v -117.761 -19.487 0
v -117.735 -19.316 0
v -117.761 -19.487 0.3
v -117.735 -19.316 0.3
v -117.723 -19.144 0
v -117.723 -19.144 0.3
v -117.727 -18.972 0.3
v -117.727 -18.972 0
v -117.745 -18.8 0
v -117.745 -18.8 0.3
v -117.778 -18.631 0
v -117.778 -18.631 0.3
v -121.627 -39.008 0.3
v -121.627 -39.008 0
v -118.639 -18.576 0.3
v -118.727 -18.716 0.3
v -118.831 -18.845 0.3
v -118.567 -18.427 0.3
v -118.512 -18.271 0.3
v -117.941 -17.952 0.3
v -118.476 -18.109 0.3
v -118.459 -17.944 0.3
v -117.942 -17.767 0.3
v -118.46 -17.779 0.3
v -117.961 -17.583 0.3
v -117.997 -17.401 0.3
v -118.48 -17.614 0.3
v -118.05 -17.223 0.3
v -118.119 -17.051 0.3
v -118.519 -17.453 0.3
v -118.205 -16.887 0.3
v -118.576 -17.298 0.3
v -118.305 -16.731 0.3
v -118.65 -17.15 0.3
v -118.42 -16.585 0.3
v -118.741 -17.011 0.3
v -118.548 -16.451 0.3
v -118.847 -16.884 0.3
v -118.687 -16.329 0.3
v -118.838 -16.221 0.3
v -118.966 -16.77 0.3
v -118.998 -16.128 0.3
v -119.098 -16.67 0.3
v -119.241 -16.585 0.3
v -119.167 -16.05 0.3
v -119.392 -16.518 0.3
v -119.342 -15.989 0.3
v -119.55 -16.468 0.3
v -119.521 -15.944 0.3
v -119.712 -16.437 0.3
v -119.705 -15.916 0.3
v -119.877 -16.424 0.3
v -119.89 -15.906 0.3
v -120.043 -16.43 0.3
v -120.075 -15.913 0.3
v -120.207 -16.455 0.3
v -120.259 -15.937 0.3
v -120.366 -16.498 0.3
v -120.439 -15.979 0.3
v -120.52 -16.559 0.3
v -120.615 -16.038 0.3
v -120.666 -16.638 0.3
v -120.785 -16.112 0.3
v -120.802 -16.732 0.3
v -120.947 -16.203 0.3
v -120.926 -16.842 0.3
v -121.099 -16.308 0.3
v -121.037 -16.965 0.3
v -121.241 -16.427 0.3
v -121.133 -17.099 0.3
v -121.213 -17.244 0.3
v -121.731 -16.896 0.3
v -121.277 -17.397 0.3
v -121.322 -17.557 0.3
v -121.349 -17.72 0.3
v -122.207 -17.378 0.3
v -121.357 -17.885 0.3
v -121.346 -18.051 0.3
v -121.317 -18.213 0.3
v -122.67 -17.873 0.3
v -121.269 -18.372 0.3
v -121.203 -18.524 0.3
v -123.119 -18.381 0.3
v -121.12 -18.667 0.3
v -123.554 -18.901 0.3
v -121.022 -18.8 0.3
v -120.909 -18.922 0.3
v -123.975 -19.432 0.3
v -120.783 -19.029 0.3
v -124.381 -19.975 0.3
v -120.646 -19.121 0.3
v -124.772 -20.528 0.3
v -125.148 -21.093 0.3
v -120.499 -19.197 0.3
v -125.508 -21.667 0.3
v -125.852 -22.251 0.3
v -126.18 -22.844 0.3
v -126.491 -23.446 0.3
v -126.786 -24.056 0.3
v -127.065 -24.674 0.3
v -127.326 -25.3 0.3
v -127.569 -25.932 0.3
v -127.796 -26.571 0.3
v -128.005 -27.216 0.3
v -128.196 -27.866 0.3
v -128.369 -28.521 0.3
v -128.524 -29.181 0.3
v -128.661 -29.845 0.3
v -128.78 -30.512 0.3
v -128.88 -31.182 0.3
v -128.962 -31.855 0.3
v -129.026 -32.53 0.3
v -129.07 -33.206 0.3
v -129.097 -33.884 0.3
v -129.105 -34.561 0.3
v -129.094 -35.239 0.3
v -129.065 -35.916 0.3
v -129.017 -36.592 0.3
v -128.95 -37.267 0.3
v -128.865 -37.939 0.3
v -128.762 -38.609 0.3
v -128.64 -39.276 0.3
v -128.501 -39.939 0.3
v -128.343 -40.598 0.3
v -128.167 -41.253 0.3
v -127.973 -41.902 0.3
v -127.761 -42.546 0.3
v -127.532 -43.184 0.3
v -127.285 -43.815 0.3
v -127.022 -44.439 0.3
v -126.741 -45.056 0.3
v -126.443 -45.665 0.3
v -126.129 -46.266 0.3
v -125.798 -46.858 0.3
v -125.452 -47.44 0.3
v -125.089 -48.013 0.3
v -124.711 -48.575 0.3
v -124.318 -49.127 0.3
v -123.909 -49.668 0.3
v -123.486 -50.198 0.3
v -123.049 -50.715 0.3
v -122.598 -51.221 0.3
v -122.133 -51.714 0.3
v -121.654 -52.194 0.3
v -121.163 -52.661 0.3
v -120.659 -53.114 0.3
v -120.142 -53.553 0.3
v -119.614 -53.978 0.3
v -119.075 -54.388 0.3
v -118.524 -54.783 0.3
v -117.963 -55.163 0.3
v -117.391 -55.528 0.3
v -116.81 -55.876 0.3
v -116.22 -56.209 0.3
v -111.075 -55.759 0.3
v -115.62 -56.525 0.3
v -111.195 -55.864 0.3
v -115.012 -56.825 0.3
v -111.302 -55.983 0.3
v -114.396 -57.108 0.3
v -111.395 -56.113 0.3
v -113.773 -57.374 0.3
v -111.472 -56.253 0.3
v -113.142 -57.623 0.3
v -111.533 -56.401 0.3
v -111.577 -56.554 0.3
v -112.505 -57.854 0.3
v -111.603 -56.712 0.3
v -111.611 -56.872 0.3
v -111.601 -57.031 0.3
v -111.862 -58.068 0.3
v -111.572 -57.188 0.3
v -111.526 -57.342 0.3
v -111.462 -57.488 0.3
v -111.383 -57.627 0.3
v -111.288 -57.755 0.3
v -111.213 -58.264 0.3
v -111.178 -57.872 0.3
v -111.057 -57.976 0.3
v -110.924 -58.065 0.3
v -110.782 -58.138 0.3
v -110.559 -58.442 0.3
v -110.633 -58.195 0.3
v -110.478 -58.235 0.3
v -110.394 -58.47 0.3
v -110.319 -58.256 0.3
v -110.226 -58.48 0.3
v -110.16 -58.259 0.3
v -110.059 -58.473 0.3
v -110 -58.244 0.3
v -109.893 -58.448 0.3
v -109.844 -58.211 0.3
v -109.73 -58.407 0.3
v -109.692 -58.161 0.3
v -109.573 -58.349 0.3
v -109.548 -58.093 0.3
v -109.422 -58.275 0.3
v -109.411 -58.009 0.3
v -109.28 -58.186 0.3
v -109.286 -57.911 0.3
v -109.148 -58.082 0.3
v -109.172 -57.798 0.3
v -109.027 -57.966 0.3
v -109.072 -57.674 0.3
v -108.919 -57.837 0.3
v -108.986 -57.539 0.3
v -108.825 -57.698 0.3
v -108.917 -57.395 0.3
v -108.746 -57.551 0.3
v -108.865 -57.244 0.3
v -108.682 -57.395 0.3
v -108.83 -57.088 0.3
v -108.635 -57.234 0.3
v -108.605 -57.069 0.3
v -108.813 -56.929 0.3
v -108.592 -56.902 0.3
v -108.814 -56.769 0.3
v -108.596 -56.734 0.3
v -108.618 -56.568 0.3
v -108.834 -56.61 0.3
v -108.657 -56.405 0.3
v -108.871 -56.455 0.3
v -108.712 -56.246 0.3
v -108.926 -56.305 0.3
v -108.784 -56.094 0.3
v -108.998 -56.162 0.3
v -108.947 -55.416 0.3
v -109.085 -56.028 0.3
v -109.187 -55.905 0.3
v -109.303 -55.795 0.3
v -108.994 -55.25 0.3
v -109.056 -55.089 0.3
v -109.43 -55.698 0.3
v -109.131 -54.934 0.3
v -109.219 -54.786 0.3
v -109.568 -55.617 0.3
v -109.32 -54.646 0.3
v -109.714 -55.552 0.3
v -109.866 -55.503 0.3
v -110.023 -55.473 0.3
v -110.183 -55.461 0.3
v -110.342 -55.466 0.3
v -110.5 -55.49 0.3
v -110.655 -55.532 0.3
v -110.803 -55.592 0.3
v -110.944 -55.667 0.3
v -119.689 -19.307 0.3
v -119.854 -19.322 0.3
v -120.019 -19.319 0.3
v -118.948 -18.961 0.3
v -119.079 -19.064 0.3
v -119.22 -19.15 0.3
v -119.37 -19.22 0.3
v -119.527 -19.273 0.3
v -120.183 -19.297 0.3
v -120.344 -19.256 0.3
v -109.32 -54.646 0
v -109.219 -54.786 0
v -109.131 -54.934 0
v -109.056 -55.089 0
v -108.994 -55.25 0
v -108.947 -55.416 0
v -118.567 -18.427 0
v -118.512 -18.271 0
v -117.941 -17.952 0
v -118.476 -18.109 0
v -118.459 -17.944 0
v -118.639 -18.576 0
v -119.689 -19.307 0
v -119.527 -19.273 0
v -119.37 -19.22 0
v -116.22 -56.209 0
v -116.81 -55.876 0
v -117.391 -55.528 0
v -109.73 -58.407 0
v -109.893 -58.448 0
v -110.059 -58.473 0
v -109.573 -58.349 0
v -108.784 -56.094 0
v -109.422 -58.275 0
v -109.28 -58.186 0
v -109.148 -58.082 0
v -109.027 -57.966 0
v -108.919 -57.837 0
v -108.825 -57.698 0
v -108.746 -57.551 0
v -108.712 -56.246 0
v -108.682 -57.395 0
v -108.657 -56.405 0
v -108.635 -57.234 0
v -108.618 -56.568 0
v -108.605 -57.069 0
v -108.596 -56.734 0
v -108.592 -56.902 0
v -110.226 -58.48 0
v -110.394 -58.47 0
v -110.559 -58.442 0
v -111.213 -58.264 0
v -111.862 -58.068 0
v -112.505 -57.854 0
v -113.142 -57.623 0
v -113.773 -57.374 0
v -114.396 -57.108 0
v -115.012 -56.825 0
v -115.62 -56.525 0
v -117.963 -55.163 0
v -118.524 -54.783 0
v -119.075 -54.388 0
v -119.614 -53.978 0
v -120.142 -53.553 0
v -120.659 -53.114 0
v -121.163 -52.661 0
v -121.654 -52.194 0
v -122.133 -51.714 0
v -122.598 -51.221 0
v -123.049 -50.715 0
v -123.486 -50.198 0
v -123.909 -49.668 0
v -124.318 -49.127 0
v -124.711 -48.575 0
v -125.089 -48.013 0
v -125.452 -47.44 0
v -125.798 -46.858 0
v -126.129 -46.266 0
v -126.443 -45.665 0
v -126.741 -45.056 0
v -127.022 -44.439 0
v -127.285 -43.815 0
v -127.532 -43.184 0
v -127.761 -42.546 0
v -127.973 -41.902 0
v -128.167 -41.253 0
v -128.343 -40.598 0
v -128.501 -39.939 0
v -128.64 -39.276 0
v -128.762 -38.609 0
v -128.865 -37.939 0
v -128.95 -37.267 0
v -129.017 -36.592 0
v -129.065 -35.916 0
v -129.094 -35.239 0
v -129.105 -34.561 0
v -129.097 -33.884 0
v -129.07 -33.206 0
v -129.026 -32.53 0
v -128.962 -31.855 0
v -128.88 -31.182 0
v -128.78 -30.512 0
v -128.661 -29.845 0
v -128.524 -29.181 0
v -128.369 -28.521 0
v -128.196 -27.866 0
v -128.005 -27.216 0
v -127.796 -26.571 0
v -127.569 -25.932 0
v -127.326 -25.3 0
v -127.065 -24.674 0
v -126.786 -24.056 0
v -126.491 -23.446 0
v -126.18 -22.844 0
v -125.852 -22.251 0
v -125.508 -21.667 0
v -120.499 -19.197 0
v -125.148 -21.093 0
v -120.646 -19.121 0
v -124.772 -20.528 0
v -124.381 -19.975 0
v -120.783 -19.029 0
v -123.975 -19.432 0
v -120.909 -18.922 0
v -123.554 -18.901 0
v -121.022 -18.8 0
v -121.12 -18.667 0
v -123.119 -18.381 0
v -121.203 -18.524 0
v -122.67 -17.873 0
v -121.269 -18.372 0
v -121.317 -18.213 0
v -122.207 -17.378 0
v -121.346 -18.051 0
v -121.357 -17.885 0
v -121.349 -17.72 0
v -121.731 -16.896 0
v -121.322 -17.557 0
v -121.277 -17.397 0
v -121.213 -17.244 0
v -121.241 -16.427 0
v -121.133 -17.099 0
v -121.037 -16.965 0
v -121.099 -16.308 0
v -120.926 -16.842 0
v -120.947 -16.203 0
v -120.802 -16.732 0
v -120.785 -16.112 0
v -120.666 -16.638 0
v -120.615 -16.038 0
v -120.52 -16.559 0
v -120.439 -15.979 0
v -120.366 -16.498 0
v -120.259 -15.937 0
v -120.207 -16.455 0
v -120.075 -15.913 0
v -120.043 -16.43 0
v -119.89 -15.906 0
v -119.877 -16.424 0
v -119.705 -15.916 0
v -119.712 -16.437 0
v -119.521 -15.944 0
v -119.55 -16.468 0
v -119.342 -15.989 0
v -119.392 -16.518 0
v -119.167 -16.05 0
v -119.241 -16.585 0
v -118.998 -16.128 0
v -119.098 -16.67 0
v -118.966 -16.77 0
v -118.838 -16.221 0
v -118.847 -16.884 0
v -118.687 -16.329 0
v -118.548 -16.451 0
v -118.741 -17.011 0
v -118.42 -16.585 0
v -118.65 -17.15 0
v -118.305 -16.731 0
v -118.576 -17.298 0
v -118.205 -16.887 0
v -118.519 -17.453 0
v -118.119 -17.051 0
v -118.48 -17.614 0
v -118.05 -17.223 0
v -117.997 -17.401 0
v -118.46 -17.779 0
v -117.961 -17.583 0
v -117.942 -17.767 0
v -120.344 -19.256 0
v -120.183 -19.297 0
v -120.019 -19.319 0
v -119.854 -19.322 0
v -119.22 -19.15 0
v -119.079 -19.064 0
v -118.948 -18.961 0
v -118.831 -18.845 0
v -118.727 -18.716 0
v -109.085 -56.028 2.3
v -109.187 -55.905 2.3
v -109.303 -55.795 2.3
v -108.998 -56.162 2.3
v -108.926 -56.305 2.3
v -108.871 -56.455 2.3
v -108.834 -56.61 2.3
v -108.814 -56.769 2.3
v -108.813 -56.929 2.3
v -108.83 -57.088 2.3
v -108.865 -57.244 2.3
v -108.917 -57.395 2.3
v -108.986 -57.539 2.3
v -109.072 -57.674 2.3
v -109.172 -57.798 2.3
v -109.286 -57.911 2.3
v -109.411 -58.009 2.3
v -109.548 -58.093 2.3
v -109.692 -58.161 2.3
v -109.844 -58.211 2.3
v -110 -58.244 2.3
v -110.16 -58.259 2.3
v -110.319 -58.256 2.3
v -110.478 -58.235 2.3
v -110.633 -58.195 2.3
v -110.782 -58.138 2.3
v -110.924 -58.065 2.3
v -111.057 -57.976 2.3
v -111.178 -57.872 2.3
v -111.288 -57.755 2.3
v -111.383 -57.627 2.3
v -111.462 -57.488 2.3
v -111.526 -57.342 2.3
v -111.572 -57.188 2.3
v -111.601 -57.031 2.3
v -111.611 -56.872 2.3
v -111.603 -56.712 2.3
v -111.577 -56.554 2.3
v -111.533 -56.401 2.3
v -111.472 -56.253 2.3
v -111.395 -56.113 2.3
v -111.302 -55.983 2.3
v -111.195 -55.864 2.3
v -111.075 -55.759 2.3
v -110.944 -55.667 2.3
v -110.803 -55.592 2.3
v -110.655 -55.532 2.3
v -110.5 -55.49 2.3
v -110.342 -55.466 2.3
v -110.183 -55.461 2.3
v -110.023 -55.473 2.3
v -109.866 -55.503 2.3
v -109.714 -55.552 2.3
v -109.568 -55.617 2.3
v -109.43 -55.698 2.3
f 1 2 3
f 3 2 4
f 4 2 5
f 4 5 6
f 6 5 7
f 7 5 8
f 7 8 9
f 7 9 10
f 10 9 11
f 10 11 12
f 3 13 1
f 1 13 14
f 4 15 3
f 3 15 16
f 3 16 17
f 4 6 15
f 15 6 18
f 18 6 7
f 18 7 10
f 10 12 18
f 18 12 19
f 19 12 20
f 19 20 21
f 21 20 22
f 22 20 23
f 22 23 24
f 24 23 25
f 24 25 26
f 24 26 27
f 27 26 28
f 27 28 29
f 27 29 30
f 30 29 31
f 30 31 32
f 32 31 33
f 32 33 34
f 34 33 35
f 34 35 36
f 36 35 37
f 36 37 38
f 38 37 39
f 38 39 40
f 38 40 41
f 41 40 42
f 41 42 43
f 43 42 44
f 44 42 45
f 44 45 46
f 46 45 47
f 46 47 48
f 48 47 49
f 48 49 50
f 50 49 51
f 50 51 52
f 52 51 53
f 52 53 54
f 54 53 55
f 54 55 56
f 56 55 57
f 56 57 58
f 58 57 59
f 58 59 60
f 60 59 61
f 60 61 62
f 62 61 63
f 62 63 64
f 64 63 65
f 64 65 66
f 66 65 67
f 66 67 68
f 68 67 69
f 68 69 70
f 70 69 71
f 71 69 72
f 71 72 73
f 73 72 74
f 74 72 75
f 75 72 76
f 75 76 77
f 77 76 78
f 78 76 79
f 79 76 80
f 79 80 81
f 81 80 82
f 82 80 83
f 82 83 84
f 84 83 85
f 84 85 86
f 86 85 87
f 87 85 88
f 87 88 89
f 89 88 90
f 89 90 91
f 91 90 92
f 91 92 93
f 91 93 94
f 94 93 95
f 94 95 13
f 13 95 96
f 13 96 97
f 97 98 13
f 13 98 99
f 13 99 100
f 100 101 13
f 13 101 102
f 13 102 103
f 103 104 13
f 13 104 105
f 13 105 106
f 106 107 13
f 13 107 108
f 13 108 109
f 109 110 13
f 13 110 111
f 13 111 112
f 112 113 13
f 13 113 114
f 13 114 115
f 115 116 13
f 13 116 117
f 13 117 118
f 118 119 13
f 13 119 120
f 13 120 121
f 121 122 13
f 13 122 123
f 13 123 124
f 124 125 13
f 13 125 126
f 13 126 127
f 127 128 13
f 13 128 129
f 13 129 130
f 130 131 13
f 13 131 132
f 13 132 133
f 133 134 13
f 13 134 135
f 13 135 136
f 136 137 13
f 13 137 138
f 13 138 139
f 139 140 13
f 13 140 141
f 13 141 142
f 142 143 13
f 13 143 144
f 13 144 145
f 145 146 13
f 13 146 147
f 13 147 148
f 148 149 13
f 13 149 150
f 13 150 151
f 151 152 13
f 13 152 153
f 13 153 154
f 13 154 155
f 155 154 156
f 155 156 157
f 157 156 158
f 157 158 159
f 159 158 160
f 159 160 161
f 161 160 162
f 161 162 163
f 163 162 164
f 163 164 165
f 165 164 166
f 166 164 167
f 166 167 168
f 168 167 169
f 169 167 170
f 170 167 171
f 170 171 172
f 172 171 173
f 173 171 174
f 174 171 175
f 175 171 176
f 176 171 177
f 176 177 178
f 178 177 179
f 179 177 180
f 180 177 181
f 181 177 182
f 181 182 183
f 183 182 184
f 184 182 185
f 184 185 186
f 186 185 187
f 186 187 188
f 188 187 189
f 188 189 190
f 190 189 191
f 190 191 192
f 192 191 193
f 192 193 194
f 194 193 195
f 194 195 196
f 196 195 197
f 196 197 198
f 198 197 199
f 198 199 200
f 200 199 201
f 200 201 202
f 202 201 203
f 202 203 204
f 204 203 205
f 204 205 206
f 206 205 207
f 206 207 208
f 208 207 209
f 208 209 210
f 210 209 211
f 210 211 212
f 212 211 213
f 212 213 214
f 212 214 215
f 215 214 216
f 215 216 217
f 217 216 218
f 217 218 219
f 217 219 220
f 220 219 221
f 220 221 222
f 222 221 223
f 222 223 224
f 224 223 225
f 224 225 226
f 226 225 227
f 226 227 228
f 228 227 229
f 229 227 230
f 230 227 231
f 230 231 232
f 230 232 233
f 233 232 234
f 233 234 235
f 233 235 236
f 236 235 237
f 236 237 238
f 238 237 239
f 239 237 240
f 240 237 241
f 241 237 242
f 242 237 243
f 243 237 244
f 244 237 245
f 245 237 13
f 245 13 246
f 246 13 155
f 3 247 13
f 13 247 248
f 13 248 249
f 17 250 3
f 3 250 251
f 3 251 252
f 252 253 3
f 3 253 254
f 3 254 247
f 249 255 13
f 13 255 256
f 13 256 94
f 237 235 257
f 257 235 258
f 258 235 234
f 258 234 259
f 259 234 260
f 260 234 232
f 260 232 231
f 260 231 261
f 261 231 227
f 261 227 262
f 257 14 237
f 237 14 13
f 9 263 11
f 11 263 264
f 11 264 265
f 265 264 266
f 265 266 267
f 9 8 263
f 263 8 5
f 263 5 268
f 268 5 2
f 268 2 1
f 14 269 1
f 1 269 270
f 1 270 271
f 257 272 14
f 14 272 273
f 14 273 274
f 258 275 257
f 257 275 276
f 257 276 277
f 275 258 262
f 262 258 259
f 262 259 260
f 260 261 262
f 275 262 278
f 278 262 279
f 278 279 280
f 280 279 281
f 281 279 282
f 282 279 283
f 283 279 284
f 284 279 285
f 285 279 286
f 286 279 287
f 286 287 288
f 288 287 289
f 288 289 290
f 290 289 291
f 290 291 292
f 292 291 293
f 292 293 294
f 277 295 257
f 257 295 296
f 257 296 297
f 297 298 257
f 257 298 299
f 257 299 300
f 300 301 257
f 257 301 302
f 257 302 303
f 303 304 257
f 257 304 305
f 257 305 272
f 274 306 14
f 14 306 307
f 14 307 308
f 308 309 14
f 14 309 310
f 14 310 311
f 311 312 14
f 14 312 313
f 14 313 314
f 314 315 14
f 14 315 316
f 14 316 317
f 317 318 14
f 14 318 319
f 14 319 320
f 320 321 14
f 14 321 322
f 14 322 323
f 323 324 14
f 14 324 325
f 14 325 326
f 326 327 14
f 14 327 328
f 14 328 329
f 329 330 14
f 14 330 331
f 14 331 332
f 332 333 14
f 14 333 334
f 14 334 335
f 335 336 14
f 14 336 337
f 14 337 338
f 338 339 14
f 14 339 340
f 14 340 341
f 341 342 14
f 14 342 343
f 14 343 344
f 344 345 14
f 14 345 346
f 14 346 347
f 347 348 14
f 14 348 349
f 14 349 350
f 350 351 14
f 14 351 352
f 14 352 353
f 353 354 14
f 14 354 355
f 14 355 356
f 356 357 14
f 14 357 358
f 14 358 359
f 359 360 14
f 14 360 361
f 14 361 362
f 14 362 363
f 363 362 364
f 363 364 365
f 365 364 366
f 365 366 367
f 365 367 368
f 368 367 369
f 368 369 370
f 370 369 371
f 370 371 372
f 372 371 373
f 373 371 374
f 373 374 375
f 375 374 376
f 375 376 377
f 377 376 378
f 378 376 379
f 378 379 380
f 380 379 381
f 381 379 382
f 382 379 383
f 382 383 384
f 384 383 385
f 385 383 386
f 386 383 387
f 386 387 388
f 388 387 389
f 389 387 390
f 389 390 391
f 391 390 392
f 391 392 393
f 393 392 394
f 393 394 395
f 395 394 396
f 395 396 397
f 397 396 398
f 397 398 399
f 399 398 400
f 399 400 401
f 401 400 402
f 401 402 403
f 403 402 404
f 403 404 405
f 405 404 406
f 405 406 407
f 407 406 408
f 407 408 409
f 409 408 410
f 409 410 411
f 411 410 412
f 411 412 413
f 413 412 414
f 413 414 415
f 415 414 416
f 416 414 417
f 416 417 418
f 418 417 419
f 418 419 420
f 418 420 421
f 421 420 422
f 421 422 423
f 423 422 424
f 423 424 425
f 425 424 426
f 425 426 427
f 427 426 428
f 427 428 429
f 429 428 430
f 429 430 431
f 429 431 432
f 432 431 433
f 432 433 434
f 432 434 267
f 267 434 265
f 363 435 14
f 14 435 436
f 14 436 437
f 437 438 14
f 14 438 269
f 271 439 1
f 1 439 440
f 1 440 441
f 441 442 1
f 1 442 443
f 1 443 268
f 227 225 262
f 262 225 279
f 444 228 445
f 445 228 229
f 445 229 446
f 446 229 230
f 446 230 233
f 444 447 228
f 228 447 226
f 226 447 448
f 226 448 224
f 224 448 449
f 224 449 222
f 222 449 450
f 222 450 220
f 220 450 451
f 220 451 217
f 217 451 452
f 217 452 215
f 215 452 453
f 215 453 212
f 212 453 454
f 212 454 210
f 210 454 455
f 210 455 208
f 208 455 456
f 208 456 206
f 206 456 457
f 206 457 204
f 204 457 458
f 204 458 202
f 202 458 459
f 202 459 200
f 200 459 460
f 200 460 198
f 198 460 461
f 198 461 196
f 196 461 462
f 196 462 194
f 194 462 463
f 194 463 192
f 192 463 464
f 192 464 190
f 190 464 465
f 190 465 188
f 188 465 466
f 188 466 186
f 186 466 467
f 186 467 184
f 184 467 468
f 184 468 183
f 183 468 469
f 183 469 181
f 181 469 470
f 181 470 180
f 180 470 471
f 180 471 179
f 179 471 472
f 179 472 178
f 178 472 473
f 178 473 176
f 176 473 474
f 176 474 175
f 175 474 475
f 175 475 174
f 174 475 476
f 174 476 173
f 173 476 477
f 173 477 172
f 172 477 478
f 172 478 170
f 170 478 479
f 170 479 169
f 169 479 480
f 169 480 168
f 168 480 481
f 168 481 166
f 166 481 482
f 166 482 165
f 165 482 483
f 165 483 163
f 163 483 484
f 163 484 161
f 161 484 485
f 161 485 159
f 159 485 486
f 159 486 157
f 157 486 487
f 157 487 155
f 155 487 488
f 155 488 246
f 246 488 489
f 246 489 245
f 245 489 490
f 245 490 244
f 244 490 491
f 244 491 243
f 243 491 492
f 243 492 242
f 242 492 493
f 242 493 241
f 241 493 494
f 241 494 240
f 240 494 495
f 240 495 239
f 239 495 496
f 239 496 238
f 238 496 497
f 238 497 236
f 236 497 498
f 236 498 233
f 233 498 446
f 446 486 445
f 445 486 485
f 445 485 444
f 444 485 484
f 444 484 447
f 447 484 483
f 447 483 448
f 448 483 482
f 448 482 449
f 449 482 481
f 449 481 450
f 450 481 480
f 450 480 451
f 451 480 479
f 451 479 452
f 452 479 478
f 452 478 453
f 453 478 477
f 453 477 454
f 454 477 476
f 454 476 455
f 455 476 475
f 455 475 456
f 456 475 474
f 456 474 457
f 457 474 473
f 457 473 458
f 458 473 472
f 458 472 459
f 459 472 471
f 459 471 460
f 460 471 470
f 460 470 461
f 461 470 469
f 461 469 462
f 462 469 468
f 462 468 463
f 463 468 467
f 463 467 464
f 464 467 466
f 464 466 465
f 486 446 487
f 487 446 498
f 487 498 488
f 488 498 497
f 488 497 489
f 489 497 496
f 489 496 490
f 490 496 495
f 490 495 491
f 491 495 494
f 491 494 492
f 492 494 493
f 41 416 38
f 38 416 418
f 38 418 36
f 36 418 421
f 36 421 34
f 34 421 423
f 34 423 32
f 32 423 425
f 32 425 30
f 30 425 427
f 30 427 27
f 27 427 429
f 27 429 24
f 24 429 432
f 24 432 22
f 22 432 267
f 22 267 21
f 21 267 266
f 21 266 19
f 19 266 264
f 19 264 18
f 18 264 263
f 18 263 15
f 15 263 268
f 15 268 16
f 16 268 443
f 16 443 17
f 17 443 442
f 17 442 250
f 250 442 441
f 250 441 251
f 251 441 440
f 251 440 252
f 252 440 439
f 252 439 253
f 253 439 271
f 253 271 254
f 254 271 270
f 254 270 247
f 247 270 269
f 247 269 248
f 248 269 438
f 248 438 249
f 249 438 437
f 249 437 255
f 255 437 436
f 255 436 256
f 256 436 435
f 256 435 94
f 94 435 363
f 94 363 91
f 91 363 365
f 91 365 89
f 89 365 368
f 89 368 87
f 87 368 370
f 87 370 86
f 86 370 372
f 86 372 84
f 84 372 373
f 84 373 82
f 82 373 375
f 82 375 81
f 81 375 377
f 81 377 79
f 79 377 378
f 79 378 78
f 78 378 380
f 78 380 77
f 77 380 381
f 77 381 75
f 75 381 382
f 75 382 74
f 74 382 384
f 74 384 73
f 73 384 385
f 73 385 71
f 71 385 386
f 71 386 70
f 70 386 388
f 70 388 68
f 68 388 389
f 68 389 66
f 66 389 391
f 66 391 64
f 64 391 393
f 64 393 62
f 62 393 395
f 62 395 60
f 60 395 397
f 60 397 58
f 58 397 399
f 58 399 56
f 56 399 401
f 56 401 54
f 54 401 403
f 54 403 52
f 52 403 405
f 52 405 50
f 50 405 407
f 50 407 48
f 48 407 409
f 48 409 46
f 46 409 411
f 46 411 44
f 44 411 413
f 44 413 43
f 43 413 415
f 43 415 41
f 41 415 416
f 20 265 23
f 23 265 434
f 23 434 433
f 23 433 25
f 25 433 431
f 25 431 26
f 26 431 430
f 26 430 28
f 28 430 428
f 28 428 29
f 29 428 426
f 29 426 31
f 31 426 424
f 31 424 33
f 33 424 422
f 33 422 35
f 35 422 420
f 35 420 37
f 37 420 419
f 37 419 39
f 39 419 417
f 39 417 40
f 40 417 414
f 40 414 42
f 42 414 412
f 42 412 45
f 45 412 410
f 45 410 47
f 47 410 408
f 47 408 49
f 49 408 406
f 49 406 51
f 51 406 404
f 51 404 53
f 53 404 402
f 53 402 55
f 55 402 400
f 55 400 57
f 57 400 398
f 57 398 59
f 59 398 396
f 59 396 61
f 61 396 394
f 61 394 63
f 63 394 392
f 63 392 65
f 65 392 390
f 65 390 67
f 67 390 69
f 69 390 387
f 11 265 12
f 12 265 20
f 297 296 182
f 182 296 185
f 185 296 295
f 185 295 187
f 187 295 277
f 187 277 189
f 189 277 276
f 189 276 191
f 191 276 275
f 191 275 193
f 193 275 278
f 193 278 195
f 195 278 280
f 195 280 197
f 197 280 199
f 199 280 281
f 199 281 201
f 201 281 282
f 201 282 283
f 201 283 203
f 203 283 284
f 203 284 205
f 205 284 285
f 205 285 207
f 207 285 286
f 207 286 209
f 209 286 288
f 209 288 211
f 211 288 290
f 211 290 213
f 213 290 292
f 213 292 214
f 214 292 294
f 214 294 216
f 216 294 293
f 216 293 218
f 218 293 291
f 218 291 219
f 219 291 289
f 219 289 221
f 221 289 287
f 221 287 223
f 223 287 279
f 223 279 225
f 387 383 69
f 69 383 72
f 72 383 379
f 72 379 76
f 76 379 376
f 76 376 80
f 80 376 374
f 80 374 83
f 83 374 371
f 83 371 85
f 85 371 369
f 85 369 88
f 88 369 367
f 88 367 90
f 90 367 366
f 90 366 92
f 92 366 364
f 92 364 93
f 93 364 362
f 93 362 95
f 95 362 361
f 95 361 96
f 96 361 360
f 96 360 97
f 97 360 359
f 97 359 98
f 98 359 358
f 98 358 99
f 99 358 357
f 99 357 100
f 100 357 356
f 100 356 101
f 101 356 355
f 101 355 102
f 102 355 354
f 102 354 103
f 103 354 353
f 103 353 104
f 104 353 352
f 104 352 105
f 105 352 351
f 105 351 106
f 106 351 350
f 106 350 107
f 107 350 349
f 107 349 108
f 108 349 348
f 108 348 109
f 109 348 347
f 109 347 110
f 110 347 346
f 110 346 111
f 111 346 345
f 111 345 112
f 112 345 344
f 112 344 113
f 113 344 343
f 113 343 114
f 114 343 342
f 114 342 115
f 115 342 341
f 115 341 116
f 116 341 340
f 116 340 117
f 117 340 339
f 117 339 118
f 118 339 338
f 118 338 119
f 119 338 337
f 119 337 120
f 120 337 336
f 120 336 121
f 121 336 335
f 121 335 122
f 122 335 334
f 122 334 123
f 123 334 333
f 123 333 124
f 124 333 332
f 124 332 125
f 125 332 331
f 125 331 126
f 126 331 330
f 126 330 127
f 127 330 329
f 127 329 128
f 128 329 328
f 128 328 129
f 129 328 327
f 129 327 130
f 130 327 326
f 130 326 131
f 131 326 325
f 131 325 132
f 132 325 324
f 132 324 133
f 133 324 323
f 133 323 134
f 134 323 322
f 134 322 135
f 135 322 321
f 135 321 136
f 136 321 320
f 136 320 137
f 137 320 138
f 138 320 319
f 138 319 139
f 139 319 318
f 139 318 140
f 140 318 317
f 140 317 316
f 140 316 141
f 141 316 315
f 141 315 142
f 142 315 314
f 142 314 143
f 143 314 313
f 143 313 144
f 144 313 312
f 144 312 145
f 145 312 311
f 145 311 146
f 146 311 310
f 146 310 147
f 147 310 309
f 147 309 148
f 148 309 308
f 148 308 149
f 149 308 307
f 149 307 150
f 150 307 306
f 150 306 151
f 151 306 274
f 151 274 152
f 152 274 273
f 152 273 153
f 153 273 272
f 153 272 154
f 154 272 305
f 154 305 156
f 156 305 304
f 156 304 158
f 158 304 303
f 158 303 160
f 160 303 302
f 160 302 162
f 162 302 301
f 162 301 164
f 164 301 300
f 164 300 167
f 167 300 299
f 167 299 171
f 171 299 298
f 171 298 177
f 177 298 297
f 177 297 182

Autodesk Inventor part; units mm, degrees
ref_plane "YZ Plane" through (0, 0, 0) normal (1, 0, 0) x (0, 1, 0)
ref_plane "XZ Plane" through (0, 0, 0) normal (0, 1, 0) x (-1, 0, 0)
ref_plane "Work Plane1" through (-172.2086, 28.8158, 0) normal (0, 0, 1) x (0.7312, 0.6822, 0)
sketch "Sketch1" plane through (-172.2086, 28.8158, 0) normal (0, 0, 1) x (0.7312, 0.6822, 0)
  circle A0 centre (-15.7879, -97.63) radius 1.25 construction
  circle A1 centre (-11.395, -78.3833) radius 1.25 construction
  circle A2 centre (6.3917, -69.8177) radius 1.25 construction
  arc A3 (12.3361, -69.0473) -> (8.4064, -68.3915) centre (10.3419, -68.895) ccw construction
  line L0 (8.4064, -68.3915) -> (8.3917, -68.5677) construction
  arc A4 (8.3917, -68.5677) -> (8.389, -68.4638) centre (6.3917, -68.5677) ccw construction
  arc A5 (8.389, -68.4638) -> (8.3692, -68.5658) centre (10.3419, -68.895) ccw construction
  line L1 (8.3692, -68.5658) -> (8.3837, -68.3896) construction
  arc A6 (8.3837, -68.3896) -> (4.3996, -68.3896) centre (6.3917, -68.5677) ccw construction
  line L2 (4.3996, -68.3896) -> (4.4141, -68.5658) construction
  arc A7 (4.4141, -68.5658) -> (4.3944, -68.4638) centre (2.4414, -68.895) ccw construction
  arc A8 (4.3944, -68.4638) -> (4.3917, -68.5677) centre (6.3917, -68.5677) ccw construction
  line L3 (4.3917, -68.5677) -> (4.377, -68.3915) construction
  arc A9 (4.377, -68.3915) -> (0.4472, -69.0473) centre (2.4414, -68.895) ccw construction
  line L4 (0.4472, -69.0473) -> (0.4905, -69.2186) construction
  arc A10 (0.4905, -69.2186) -> (0.4543, -69.1213) centre (-1.4011, -69.868) ccw construction
  arc A11 (0.4543, -69.1213) -> (0.4687, -69.2242) centre (2.4414, -68.895) ccw construction
  line L5 (0.4687, -69.2242) -> (0.4252, -69.0528) construction
  arc A12 (0.4252, -69.0528) -> (-3.343, -70.3465) centre (-1.4011, -69.868) ccw construction
  line L6 (-3.343, -70.3465) -> (-3.2721, -70.5084) construction
  arc A13 (-3.2721, -70.5084) -> (-3.3239, -70.4183) centre (-5.0311, -71.4603) ccw construction
  arc A14 (-3.3239, -70.4183) -> (-3.2927, -70.5174) centre (-1.4011, -69.868) ccw construction
  line L7 (-3.2927, -70.5174) -> (-3.3638, -70.3556) construction
  arc A15 (-3.3638, -70.3556) -> (-6.8678, -72.2518) centre (-5.0311, -71.4603) ccw construction
  line L8 (-6.8678, -72.2518) -> (-6.7711, -72.3999) construction
  arc A16 (-6.7711, -72.3999) -> (-6.8371, -72.3196) centre (-8.3494, -73.6283) ccw construction
  arc A17 (-6.8371, -72.3196) -> (-6.79, -72.4122) centre (-5.0311, -71.4603) ccw construction
  line L9 (-6.79, -72.4122) -> (-6.8868, -72.2642) construction
  arc A18 (-6.8868, -72.2642) -> (-10.0308, -74.7113) centre (-8.3494, -73.6283) ccw construction
  line L10 (-10.0308, -74.7113) -> (-9.9111, -74.8414) construction
  arc A19 (-9.9111, -74.8414) -> (-9.9894, -74.7731) centre (-11.2657, -76.3129) ccw construction
  arc A20 (-9.9894, -74.7731) -> (-9.9277, -74.8567) centre (-8.3494, -73.6283) ccw construction
  line L11 (-9.9277, -74.8567) -> (-10.0475, -74.7267) construction
  arc A21 (-10.0475, -74.7267) -> (-12.7459, -77.6579) centre (-11.2657, -76.3129) ccw construction
  line L12 (-12.7459, -77.6579) -> (-12.6064, -77.7666) construction
  arc A22 (-12.6064, -77.7666) -> (-12.6948, -77.712) centre (-13.7003, -79.4409) ccw construction
  arc A23 (-12.6948, -77.712) -> (-12.6203, -77.7843) centre (-11.2657, -76.3129) ccw construction
  line L13 (-12.6203, -77.7843) -> (-12.7598, -77.6758) construction
  arc A24 (-12.7598, -77.6758) -> (-14.9389, -81.0112) centre (-13.7003, -79.4409) ccw construction
  line L14 (-14.9389, -81.0112) -> (-14.7835, -81.0954) construction
  arc A25 (-14.7835, -81.0954) -> (-14.8797, -81.0562) centre (-15.5869, -82.927) ccw construction
  arc A26 (-14.8797, -81.0562) -> (-14.7942, -81.1152) centre (-13.7003, -79.4409) ccw construction
  line L15 (-14.7942, -81.1152) -> (-14.9497, -81.0312) construction
  arc A27 (-14.9497, -81.0312) -> (-16.5501, -84.6797) centre (-15.5869, -82.927) ccw construction
  line L16 (-16.5501, -84.6797) -> (-16.383, -84.7372) construction
  arc A28 (-16.383, -84.7372) -> (-16.4843, -84.7143) centre (-16.8739, -86.676) ccw construction
  arc A29 (-16.4843, -84.7143) -> (-16.3903, -84.7585) centre (-15.5869, -82.927) ccw construction
  line L17 (-16.3903, -84.7585) -> (-16.5575, -84.7012) construction
  arc A30 (-16.5575, -84.7012) -> (-17.5355, -88.5634) centre (-16.8739, -86.676) ccw construction
  line L18 (-17.5355, -88.5634) -> (-17.3612, -88.5926) construction
  arc A31 (-17.3612, -88.5926) -> (-17.4649, -88.5867) centre (-17.5264, -90.5857) ccw construction
  arc A32 (-17.4649, -88.5867) -> (-17.3649, -88.6148) centre (-16.8739, -86.676) ccw construction
  line L19 (-17.3649, -88.6148) -> (-17.5393, -88.5858) construction
  arc A33 (-17.5393, -88.5858) -> (-17.8683, -92.5563) centre (-17.5264, -90.5857) ccw construction
  line L20 (-17.8683, -92.5563) -> (-17.6915, -92.5564) construction
  arc A34 (-17.6915, -92.5564) -> (-17.7948, -92.5677) centre (-17.5264, -94.5496) ccw construction
  arc A35 (-17.7948, -92.5677) -> (-17.6915, -92.5789) centre (-17.5264, -90.5857) ccw construction
  line L21 (-17.6915, -92.5789) -> (-17.8683, -92.579) construction
  arc A36 (-17.8683, -92.579) -> (-17.5393, -96.5495) centre (-17.5264, -94.5496) ccw construction
  line L22 (-17.5393, -96.5495) -> (-17.3649, -96.5205) construction
  arc A37 (-17.3649, -96.5205) -> (-17.4649, -96.5486) centre (-16.8739, -98.4593) ccw construction
  arc A38 (-17.4649, -96.5486) -> (-17.3612, -96.5427) centre (-17.5264, -94.5496) ccw construction
  line L23 (-17.3612, -96.5427) -> (-17.5355, -96.5719) construction
  arc A39 (-17.5355, -96.5719) -> (-16.5575, -100.4341) centre (-16.8739, -98.4593) ccw construction
  line L24 (-16.5575, -100.4341) -> (-16.3903, -100.3768) construction
  arc A40 (-16.3903, -100.3768) -> (-16.4843, -100.421) centre (-15.5869, -102.2083) ccw construction
  arc A41 (-16.4843, -100.421) -> (-16.383, -100.3981) centre (-16.8739, -98.4593) ccw construction
  line L25 (-16.383, -100.3981) -> (-16.5501, -100.4556) construction
  arc A42 (-16.5501, -100.4556) -> (-14.9497, -104.1041) centre (-15.5869, -102.2083) ccw construction
  line L26 (-14.9497, -104.1041) -> (-14.7942, -104.0201) construction
  arc A43 (-14.7942, -104.0201) -> (-14.8797, -104.0791) centre (-13.7003, -105.6944) ccw construction
  arc A44 (-14.8797, -104.0791) -> (-14.7835, -104.0399) centre (-15.5869, -102.2083) ccw construction
  line L27 (-14.7835, -104.0399) -> (-14.9389, -104.1241) construction
  arc A45 (-14.9389, -104.1241) -> (-12.7598, -107.4595) centre (-13.7003, -105.6944) ccw construction
  line L28 (-12.7598, -107.4595) -> (-12.6203, -107.351) construction
  arc A46 (-12.6203, -107.351) -> (-12.6948, -107.4233) centre (-11.2657, -108.8224) ccw construction
  arc A47 (-12.6948, -107.4233) -> (-12.6064, -107.3687) centre (-13.7003, -105.6944) ccw construction
  line L29 (-12.6064, -107.3687) -> (-12.7459, -107.4774) construction
  arc A48 (-12.7459, -107.4774) -> (-10.0475, -110.4086) centre (-11.2657, -108.8224) ccw construction
  line L30 (-10.0475, -110.4086) -> (-9.9277, -110.2786) construction
  arc A49 (-9.9277, -110.2786) -> (-9.9894, -110.3622) centre (-8.3494, -111.507) ccw construction
  arc A50 (-9.9894, -110.3622) -> (-9.9111, -110.2939) centre (-11.2657, -108.8224) ccw construction
  line L31 (-9.9111, -110.2939) -> (-10.0308, -110.424) construction
  arc A51 (-10.0308, -110.424) -> (-6.8868, -112.8711) centre (-8.3494, -111.507) ccw construction
  line L32 (-6.8868, -112.8711) -> (-6.79, -112.7231) construction
  arc A52 (-6.79, -112.7231) -> (-6.8371, -112.8157) centre (-5.0311, -113.675) ccw construction
  arc A53 (-6.8371, -112.8157) -> (-6.7711, -112.7355) centre (-8.3494, -111.507) ccw construction
  line L33 (-6.7711, -112.7355) -> (-6.8678, -112.8835) construction
  arc A54 (-6.8678, -112.8835) -> (-3.3638, -114.7797) centre (-5.0311, -113.675) ccw construction
  line L34 (-3.3638, -114.7797) -> (-3.2927, -114.6179) construction
  arc A55 (-3.2927, -114.6179) -> (-3.3239, -114.717) centre (-1.4011, -115.2673) ccw construction
  arc A56 (-3.3239, -114.717) -> (-3.2721, -114.6269) centre (-5.0311, -113.675) ccw construction
  line L35 (-3.2721, -114.6269) -> (-3.343, -114.7888) construction
  arc A57 (-3.343, -114.7888) -> (0.4252, -116.0825) centre (-1.4011, -115.2673) ccw construction
  line L36 (0.4252, -116.0825) -> (0.4687, -115.9111) construction
  arc A58 (0.4687, -115.9111) -> (0.4543, -116.014) centre (2.4414, -116.2403) ccw construction
  arc A59 (0.4543, -116.014) -> (0.4905, -115.9167) centre (-1.4011, -115.2673) ccw construction
  line L37 (0.4905, -115.9167) -> (0.4472, -116.088) construction
  arc A60 (0.4472, -116.088) -> (4.377, -116.7438) centre (2.4414, -116.2403) ccw construction
  line L38 (4.377, -116.7438) -> (4.3917, -116.5677) construction
  arc A61 (4.3917, -116.5677) -> (4.3944, -116.6715) centre (6.3917, -116.5677) ccw construction
  arc A62 (4.3944, -116.6715) -> (4.4141, -116.5695) centre (2.4414, -116.2403) ccw construction
  line L39 (4.4141, -116.5695) -> (4.3996, -116.7457) construction
  arc A63 (4.3996, -116.7457) -> (8.3837, -116.7457) centre (6.3917, -116.5677) ccw construction
  line L40 (8.3837, -116.7457) -> (8.3692, -116.5695) construction
  arc A64 (8.3692, -116.5695) -> (8.389, -116.6715) centre (10.3419, -116.2403) ccw construction
  arc A65 (8.389, -116.6715) -> (8.3917, -116.5677) centre (6.3917, -116.5677) ccw construction
  line L41 (8.3917, -116.5677) -> (8.4064, -116.7438) construction
  arc A66 (8.4064, -116.7438) -> (12.3361, -116.088) centre (10.3419, -116.2403) ccw construction
  line L42 (12.3361, -116.088) -> (12.2928, -115.9167) construction
  arc A67 (12.2928, -115.9167) -> (12.3291, -116.014) centre (14.1845, -115.2673) ccw construction
  arc A68 (12.3291, -116.014) -> (12.3147, -115.9111) centre (10.3419, -116.2403) ccw construction
  line L43 (12.3147, -115.9111) -> (12.3581, -116.0825) construction
  arc A69 (12.3581, -116.0825) -> (16.1264, -114.7888) centre (14.1845, -115.2673) ccw construction
  line L44 (16.1264, -114.7888) -> (16.0555, -114.6269) construction
  arc A70 (16.0555, -114.6269) -> (16.1073, -114.717) centre (17.8144, -113.675) ccw construction
  arc A71 (16.1073, -114.717) -> (16.0761, -114.6179) centre (14.1845, -115.2673) ccw construction
  line L45 (16.0761, -114.6179) -> (16.1472, -114.7797) construction
  arc A72 (16.1472, -114.7797) -> (19.6511, -112.8835) centre (17.8144, -113.675) ccw construction
  line L46 (19.6511, -112.8835) -> (19.5545, -112.7355) construction
  arc A73 (19.5545, -112.7355) -> (19.6204, -112.8157) centre (21.1328, -111.507) ccw construction
  arc A74 (19.6204, -112.8157) -> (19.5734, -112.7231) centre (17.8144, -113.675) ccw construction
  line L47 (19.5734, -112.7231) -> (19.6701, -112.8711) construction
  arc A75 (19.6701, -112.8711) -> (22.8141, -110.424) centre (21.1328, -111.507) ccw construction
  line L48 (22.8141, -110.424) -> (22.6945, -110.2939) construction
  arc A76 (22.6945, -110.2939) -> (22.7727, -110.3622) centre (24.049, -108.8224) ccw construction
  arc A77 (22.7727, -110.3622) -> (22.7111, -110.2786) centre (21.1328, -111.507) ccw construction
  line L49 (22.7111, -110.2786) -> (22.8308, -110.4086) construction
  arc A78 (22.8308, -110.4086) -> (25.5292, -107.4774) centre (24.049, -108.8224) ccw construction
  line L50 (25.5292, -107.4774) -> (25.3898, -107.3687) construction
  arc A79 (25.3898, -107.3687) -> (25.4782, -107.4233) centre (26.4837, -105.6944) ccw construction
  arc A80 (25.4782, -107.4233) -> (25.4036, -107.351) centre (24.049, -108.8224) ccw construction
  line L51 (25.4036, -107.351) -> (25.5431, -107.4595) construction
  arc A81 (25.5431, -107.4595) -> (27.7223, -104.1241) centre (26.4837, -105.6944) ccw construction
  line L52 (27.7223, -104.1241) -> (27.5668, -104.0399) construction
  arc A82 (27.5668, -104.0399) -> (27.663, -104.0791) centre (28.3702, -102.2083) ccw construction
  arc A83 (27.663, -104.0791) -> (27.5776, -104.0201) centre (26.4837, -105.6944) ccw construction
  line L53 (27.5776, -104.0201) -> (27.7331, -104.1041) construction
  arc A84 (27.7331, -104.1041) -> (29.3335, -100.4556) centre (28.3702, -102.2083) ccw construction
  line L54 (29.3335, -100.4556) -> (29.1663, -100.3981) construction
  arc A85 (29.1663, -100.3981) -> (29.2676, -100.421) centre (29.6573, -98.4593) ccw construction
  arc A86 (29.2676, -100.421) -> (29.1736, -100.3768) centre (28.3702, -102.2083) ccw construction
  line L55 (29.1736, -100.3768) -> (29.3408, -100.4341) construction
  arc A87 (29.3408, -100.4341) -> (30.3189, -96.5719) centre (29.6573, -98.4593) ccw construction
  line L56 (30.3189, -96.5719) -> (30.1445, -96.5427) construction
  arc A88 (30.1445, -96.5427) -> (30.2483, -96.5486) centre (30.3097, -94.5496) ccw construction
  arc A89 (30.2483, -96.5486) -> (30.1483, -96.5205) centre (29.6573, -98.4593) ccw construction
  line L57 (30.1483, -96.5205) -> (30.3226, -96.5495) construction
  arc A90 (30.3226, -96.5495) -> (30.6516, -92.579) centre (30.3097, -94.5496) ccw construction
  line L58 (30.6516, -92.579) -> (30.4749, -92.5789) construction
  arc A91 (30.4749, -92.5789) -> (30.5781, -92.5677) centre (30.3097, -90.5857) ccw construction
  arc A92 (30.5781, -92.5677) -> (30.4749, -92.5564) centre (30.3097, -94.5496) ccw construction
  line L59 (30.4749, -92.5564) -> (30.6516, -92.5563) construction
  arc A93 (30.6516, -92.5563) -> (30.3226, -88.5858) centre (30.3097, -90.5857) ccw construction
  line L60 (30.3226, -88.5858) -> (30.1483, -88.6148) construction
  arc A94 (30.1483, -88.6148) -> (30.2483, -88.5867) centre (29.6573, -86.676) ccw construction
  arc A95 (30.2483, -88.5867) -> (30.1445, -88.5926) centre (30.3097, -90.5857) ccw construction
  line L61 (30.1445, -88.5926) -> (30.3189, -88.5634) construction
  arc A96 (30.3189, -88.5634) -> (29.3408, -84.7012) centre (29.6573, -86.676) ccw construction
  line L62 (29.3408, -84.7012) -> (29.1736, -84.7585) construction
  arc A97 (29.1736, -84.7585) -> (29.2676, -84.7143) centre (28.3702, -82.927) ccw construction
  arc A98 (29.2676, -84.7143) -> (29.1663, -84.7372) centre (29.6573, -86.676) ccw construction
  line L63 (29.1663, -84.7372) -> (29.3335, -84.6797) construction
  arc A99 (29.3335, -84.6797) -> (27.7331, -81.0312) centre (28.3702, -82.927) ccw construction
  line L64 (27.7331, -81.0312) -> (27.5776, -81.1152) construction
  arc A100 (27.5776, -81.1152) -> (27.663, -81.0562) centre (26.4837, -79.4409) ccw construction
  arc A101 (27.663, -81.0562) -> (27.5668, -81.0954) centre (28.3702, -82.927) ccw construction
  line L65 (27.5668, -81.0954) -> (27.7223, -81.0112) construction
  arc A102 (27.7223, -81.0112) -> (25.5431, -77.6758) centre (26.4837, -79.4409) ccw construction
  line L66 (25.5431, -77.6758) -> (25.4036, -77.7843) construction
  arc A103 (25.4036, -77.7843) -> (25.4782, -77.712) centre (24.049, -76.3129) ccw construction
  arc A104 (25.4782, -77.712) -> (25.3898, -77.7666) centre (26.4837, -79.4409) ccw construction
  line L67 (25.3898, -77.7666) -> (25.5292, -77.6579) construction
  arc A105 (25.5292, -77.6579) -> (22.8308, -74.7267) centre (24.049, -76.3129) ccw construction
  line L68 (22.8308, -74.7267) -> (22.7111, -74.8567) construction
  arc A106 (22.7111, -74.8567) -> (22.7727, -74.7731) centre (21.1328, -73.6283) ccw construction
  arc A107 (22.7727, -74.7731) -> (22.6945, -74.8414) centre (24.049, -76.3129) ccw construction
  line L69 (22.6945, -74.8414) -> (22.8141, -74.7113) construction
  arc A108 (22.8141, -74.7113) -> (19.6701, -72.2642) centre (21.1328, -73.6283) ccw construction
  line L70 (19.6701, -72.2642) -> (19.5734, -72.4122) construction
  arc A109 (19.5734, -72.4122) -> (19.6204, -72.3196) centre (17.8144, -71.4603) ccw construction
  arc A110 (19.6204, -72.3196) -> (19.5545, -72.3999) centre (21.1328, -73.6283) ccw construction
  line L71 (19.5545, -72.3999) -> (19.6511, -72.2518) construction
  arc A111 (19.6511, -72.2518) -> (16.1472, -70.3556) centre (17.8144, -71.4603) ccw construction
  line L72 (16.1472, -70.3556) -> (16.0761, -70.5174) construction
  arc A112 (16.0761, -70.5174) -> (16.1073, -70.4183) centre (14.1845, -69.868) ccw construction
  arc A113 (16.1073, -70.4183) -> (16.0555, -70.5084) centre (17.8144, -71.4603) ccw construction
  line L73 (16.0555, -70.5084) -> (16.1264, -70.3465) construction
  arc A114 (16.1264, -70.3465) -> (12.3581, -69.0528) centre (14.1845, -69.868) ccw construction
  line L74 (12.3581, -69.0528) -> (12.3147, -69.2242) construction
  arc A115 (12.3147, -69.2242) -> (12.3291, -69.1213) centre (10.3419, -68.895) ccw construction
  arc A116 (12.3291, -69.1213) -> (12.2928, -69.2186) centre (14.1845, -69.868) ccw construction
  line L75 (12.2928, -69.2186) -> (12.3361, -69.0473) construction
  circle A117 centre (6.3917, -92.5677) radius 21 construction
  circle A118 centre (-13.1155, -104.9383) radius 1.4
  arc A119 (6.4025, -67.85) -> (-14.4494, -105.8573) centre (6.3917, -92.5677) ccw
  circle A120 centre (6.3917, -69.8177) radius 1.45
  arc A121 (7.7753, -71.2167) -> (6.4025, -67.85) centre (6.3917, -69.8177) ccw
  line L76 (6.3917, -69.8177) -> (7.7753, -71.2167) construction
  line L77 (6.3917, -69.8177) -> (6.4025, -67.85) construction
  arc A122 (-14.5155, -105.753) -> (-11.5494, -105.3521) centre (-13.1155, -104.9383) ccw
  line L78 (-13.1155, -104.9383) -> (-11.5494, -105.3521) construction
  line L79 (-13.1155, -104.9383) -> (-14.5155, -105.753) construction
  line L80 (-11.5494, -105.3521) -> (7.7753, -71.2167)
  circle A123 centre (24.1783, -78.3833) radius 1.25
  circle A124 centre (28.5713, -97.63) radius 1.25
  circle A125 centre (16.2625, -113.0647) radius 1.25
  circle A126 centre (-3.4792, -113.0647) radius 1.25
  point P0 (106.2561, -138.5489)
  dimension "d0" = 2.8
  dimension "d1" = 0.2
  dimension "d2" = 135
  dimension "d3" = 135
extrude "Extrusion1" add sketch "Sketch1" along normal blind 0.3 contours A118 | A121 L80 A122 A119
sketch "Sketch2" plane through (-172.2086, 28.8158, 0.3) normal (0, 0, 1) x (0.7312, 0.6822, 0)
  circle A0 centre (6.3917, -69.8177) radius 1.45 construction
  arc A1 (6.4025, -67.85) -> (-14.4494, -105.8573) centre (6.3917, -92.5677) ccw construction
  arc A2 (-14.4494, -105.8573) -> (-11.5494, -105.3521) centre (-13.1155, -104.9383) ccw construction
  line L0 (-11.5494, -105.3521) -> (7.7753, -71.2167) construction
  arc A3 (7.7753, -71.2167) -> (6.4025, -67.85) centre (6.3917, -69.8177) ccw construction
  circle A4 centre (-13.1155, -104.9383) radius 1.4
  point P0 (106.2561, -138.5489)
  dimension "d6" = 2.8
extrude "Extrusion2" add sketch "Sketch2" along normal blind 2
sketch "Sketch3" plane through (-172.2086, 28.8158, 0.3) normal (0, 0, 1) x (0.7312, 0.6822, 0)
  circle A0 centre (-13.1155, -104.9383) radius 1.4 construction
  circle A1 centre (6.3917, -69.8177) radius 1.45 construction
  arc A2 (6.4025, -67.85) -> (-14.4494, -105.8573) centre (6.3917, -92.5677) ccw construction
  arc A3 (-14.4494, -105.8573) -> (-11.5494, -105.3521) centre (-13.1155, -104.9383) ccw construction
  line L0 (-11.5494, -105.3521) -> (7.7753, -71.2167) construction
  arc A4 (7.7753, -71.2167) -> (6.4025, -67.85) centre (6.3917, -69.8177) ccw construction
  line L1 (-11.5494, -105.3521) -> (7.7753, -71.2167) construction
  line L2 (-1.887, -88.2844) -> (-15.2891, -80.6972) construction
  line L3 (-9.284, -84.0968) -> (7.2157, -72.2053)
  line L4 (-9.284, -84.0968) -> (-10.9897, -104.3635)
  line L5 (-10.9897, -104.3635) -> (7.2157, -72.2053)
  point P0 (106.2561, -138.5489)
  dimension "d20" = 8.5
extrude "Extrusion3" cut sketch "Sketch3" against normal through all
fillet "Fillet1" radius 2 2 edges at (-109.048, -54.9889, 0.15) (-117.6748, -19.0562, 0.15)
sketch "Sketch4" plane through (-172.2086, 28.8158, 0.3) normal (0, 0, 1) x (0.7312, 0.6822, 0)
  line L0 (7.4314, -71.8242) -> (7.7753, -71.2167) construction
  arc A0 (7.7753, -71.2167) -> (6.4025, -67.85) centre (6.3917, -69.8177) ccw construction
  arc A1 (6.4025, -67.85) -> (-14.4494, -105.8573) centre (6.3917, -92.5677) ccw construction
  arc A2 (-14.4494, -105.8573) -> (-11.5494, -105.3521) centre (-13.1155, -104.9383) ccw construction
  circle A3 centre (-13.1155, -104.9383) radius 1.4 construction
  circle A4 centre (6.3917, -69.8177) radius 1.45 construction
  line L1 (-20.7146, -92.3351) -> (-11.0435, -83.146)
  line L2 (-10.953, -103.9271) -> (-9.284, -84.0968) projected
  line L3 (6.3917, -92.5677) -> (-12.496, -82.3611) construction
  line L4 (-9.284, -84.0968) -> (6.8604, -72.4614) construction
  line L5 (-20.7146, -92.3351) -> (-9.284, -84.0968)
  line L6 (-11.0435, -83.146) -> (-5.8817, -43.6741)
  line L7 (-9.284, -84.0968) -> (-5.8817, -43.6741)
  arc A5 (6.8604, -72.4614) -> (7.4314, -71.8242) centre (5.691, -70.8389) ccw projected
  line L8 (-11.5494, -105.3521) -> (-11.2055, -104.7446) projected
  arc A6 (-11.2055, -104.7446) -> (-10.953, -103.9271) centre (-12.946, -103.7593) ccw projected
  line L9 (-10.953, -103.9271) -> (-9.284, -84.0968) projected
  line L10 (-9.284, -84.0968) -> (6.8604, -72.4614) projected
  point P0 (106.2561, -138.5489)
  point P1 (-16.9547, -84.4492)
  point P2 (-13.1031, -77.3717)
  dimension "d12" = 2
extrude "Extrusion4" [suppressed]
sketch "Sketch5" plane through (-172.2086, 28.8158, 0.3) normal (0, 0, 1) x (0.7312, 0.6822, 0)
  line L0 (7.4314, -71.8242) -> (7.7753, -71.2167) projected
  arc A0 (7.7753, -71.2167) -> (6.4025, -67.85) centre (6.3917, -69.8177) ccw projected
  arc A1 (6.4025, -67.85) -> (-14.4494, -105.8573) centre (6.3917, -92.5677) ccw projected
  arc A2 (-14.4494, -105.8573) -> (-11.5494, -105.3521) centre (-13.1155, -104.9383) ccw projected
  circle A3 centre (-13.1155, -104.9383) radius 1.4 projected
  circle A4 centre (6.3917, -69.8177) radius 1.45 projected
  line L1 (7.4314, -71.8242) -> (7.7753, -71.2167) projected
  line L2 (-11.5494, -105.3521) -> (-11.2055, -104.7446) projected
  arc A5 (7.1804, -72.1737) -> (-11.2055, -104.7446) centre (1.7027, -90.5564) ccw
  line L3 (7.1804, -72.1737) -> (-11.2055, -104.7446)
  arc A6 (6.8604, -72.4614) -> (7.4314, -71.8242) centre (5.691, -70.8389) ccw projected
  line L4 (-11.5494, -105.3521) -> (-11.2055, -104.7446) projected
  arc A7 (-11.2055, -104.7446) -> (-10.953, -103.9271) centre (-12.946, -103.7593) ccw projected
  line L5 (-10.953, -103.9271) -> (-9.284, -84.0968) projected
  line L6 (-9.284, -84.0968) -> (6.8604, -72.4614) projected
  point P0 (106.2561, -138.5489)
extrude "Extrusion5" [suppressed]
properties part number "20_Cube_Insert_CirAp_Leaf"
